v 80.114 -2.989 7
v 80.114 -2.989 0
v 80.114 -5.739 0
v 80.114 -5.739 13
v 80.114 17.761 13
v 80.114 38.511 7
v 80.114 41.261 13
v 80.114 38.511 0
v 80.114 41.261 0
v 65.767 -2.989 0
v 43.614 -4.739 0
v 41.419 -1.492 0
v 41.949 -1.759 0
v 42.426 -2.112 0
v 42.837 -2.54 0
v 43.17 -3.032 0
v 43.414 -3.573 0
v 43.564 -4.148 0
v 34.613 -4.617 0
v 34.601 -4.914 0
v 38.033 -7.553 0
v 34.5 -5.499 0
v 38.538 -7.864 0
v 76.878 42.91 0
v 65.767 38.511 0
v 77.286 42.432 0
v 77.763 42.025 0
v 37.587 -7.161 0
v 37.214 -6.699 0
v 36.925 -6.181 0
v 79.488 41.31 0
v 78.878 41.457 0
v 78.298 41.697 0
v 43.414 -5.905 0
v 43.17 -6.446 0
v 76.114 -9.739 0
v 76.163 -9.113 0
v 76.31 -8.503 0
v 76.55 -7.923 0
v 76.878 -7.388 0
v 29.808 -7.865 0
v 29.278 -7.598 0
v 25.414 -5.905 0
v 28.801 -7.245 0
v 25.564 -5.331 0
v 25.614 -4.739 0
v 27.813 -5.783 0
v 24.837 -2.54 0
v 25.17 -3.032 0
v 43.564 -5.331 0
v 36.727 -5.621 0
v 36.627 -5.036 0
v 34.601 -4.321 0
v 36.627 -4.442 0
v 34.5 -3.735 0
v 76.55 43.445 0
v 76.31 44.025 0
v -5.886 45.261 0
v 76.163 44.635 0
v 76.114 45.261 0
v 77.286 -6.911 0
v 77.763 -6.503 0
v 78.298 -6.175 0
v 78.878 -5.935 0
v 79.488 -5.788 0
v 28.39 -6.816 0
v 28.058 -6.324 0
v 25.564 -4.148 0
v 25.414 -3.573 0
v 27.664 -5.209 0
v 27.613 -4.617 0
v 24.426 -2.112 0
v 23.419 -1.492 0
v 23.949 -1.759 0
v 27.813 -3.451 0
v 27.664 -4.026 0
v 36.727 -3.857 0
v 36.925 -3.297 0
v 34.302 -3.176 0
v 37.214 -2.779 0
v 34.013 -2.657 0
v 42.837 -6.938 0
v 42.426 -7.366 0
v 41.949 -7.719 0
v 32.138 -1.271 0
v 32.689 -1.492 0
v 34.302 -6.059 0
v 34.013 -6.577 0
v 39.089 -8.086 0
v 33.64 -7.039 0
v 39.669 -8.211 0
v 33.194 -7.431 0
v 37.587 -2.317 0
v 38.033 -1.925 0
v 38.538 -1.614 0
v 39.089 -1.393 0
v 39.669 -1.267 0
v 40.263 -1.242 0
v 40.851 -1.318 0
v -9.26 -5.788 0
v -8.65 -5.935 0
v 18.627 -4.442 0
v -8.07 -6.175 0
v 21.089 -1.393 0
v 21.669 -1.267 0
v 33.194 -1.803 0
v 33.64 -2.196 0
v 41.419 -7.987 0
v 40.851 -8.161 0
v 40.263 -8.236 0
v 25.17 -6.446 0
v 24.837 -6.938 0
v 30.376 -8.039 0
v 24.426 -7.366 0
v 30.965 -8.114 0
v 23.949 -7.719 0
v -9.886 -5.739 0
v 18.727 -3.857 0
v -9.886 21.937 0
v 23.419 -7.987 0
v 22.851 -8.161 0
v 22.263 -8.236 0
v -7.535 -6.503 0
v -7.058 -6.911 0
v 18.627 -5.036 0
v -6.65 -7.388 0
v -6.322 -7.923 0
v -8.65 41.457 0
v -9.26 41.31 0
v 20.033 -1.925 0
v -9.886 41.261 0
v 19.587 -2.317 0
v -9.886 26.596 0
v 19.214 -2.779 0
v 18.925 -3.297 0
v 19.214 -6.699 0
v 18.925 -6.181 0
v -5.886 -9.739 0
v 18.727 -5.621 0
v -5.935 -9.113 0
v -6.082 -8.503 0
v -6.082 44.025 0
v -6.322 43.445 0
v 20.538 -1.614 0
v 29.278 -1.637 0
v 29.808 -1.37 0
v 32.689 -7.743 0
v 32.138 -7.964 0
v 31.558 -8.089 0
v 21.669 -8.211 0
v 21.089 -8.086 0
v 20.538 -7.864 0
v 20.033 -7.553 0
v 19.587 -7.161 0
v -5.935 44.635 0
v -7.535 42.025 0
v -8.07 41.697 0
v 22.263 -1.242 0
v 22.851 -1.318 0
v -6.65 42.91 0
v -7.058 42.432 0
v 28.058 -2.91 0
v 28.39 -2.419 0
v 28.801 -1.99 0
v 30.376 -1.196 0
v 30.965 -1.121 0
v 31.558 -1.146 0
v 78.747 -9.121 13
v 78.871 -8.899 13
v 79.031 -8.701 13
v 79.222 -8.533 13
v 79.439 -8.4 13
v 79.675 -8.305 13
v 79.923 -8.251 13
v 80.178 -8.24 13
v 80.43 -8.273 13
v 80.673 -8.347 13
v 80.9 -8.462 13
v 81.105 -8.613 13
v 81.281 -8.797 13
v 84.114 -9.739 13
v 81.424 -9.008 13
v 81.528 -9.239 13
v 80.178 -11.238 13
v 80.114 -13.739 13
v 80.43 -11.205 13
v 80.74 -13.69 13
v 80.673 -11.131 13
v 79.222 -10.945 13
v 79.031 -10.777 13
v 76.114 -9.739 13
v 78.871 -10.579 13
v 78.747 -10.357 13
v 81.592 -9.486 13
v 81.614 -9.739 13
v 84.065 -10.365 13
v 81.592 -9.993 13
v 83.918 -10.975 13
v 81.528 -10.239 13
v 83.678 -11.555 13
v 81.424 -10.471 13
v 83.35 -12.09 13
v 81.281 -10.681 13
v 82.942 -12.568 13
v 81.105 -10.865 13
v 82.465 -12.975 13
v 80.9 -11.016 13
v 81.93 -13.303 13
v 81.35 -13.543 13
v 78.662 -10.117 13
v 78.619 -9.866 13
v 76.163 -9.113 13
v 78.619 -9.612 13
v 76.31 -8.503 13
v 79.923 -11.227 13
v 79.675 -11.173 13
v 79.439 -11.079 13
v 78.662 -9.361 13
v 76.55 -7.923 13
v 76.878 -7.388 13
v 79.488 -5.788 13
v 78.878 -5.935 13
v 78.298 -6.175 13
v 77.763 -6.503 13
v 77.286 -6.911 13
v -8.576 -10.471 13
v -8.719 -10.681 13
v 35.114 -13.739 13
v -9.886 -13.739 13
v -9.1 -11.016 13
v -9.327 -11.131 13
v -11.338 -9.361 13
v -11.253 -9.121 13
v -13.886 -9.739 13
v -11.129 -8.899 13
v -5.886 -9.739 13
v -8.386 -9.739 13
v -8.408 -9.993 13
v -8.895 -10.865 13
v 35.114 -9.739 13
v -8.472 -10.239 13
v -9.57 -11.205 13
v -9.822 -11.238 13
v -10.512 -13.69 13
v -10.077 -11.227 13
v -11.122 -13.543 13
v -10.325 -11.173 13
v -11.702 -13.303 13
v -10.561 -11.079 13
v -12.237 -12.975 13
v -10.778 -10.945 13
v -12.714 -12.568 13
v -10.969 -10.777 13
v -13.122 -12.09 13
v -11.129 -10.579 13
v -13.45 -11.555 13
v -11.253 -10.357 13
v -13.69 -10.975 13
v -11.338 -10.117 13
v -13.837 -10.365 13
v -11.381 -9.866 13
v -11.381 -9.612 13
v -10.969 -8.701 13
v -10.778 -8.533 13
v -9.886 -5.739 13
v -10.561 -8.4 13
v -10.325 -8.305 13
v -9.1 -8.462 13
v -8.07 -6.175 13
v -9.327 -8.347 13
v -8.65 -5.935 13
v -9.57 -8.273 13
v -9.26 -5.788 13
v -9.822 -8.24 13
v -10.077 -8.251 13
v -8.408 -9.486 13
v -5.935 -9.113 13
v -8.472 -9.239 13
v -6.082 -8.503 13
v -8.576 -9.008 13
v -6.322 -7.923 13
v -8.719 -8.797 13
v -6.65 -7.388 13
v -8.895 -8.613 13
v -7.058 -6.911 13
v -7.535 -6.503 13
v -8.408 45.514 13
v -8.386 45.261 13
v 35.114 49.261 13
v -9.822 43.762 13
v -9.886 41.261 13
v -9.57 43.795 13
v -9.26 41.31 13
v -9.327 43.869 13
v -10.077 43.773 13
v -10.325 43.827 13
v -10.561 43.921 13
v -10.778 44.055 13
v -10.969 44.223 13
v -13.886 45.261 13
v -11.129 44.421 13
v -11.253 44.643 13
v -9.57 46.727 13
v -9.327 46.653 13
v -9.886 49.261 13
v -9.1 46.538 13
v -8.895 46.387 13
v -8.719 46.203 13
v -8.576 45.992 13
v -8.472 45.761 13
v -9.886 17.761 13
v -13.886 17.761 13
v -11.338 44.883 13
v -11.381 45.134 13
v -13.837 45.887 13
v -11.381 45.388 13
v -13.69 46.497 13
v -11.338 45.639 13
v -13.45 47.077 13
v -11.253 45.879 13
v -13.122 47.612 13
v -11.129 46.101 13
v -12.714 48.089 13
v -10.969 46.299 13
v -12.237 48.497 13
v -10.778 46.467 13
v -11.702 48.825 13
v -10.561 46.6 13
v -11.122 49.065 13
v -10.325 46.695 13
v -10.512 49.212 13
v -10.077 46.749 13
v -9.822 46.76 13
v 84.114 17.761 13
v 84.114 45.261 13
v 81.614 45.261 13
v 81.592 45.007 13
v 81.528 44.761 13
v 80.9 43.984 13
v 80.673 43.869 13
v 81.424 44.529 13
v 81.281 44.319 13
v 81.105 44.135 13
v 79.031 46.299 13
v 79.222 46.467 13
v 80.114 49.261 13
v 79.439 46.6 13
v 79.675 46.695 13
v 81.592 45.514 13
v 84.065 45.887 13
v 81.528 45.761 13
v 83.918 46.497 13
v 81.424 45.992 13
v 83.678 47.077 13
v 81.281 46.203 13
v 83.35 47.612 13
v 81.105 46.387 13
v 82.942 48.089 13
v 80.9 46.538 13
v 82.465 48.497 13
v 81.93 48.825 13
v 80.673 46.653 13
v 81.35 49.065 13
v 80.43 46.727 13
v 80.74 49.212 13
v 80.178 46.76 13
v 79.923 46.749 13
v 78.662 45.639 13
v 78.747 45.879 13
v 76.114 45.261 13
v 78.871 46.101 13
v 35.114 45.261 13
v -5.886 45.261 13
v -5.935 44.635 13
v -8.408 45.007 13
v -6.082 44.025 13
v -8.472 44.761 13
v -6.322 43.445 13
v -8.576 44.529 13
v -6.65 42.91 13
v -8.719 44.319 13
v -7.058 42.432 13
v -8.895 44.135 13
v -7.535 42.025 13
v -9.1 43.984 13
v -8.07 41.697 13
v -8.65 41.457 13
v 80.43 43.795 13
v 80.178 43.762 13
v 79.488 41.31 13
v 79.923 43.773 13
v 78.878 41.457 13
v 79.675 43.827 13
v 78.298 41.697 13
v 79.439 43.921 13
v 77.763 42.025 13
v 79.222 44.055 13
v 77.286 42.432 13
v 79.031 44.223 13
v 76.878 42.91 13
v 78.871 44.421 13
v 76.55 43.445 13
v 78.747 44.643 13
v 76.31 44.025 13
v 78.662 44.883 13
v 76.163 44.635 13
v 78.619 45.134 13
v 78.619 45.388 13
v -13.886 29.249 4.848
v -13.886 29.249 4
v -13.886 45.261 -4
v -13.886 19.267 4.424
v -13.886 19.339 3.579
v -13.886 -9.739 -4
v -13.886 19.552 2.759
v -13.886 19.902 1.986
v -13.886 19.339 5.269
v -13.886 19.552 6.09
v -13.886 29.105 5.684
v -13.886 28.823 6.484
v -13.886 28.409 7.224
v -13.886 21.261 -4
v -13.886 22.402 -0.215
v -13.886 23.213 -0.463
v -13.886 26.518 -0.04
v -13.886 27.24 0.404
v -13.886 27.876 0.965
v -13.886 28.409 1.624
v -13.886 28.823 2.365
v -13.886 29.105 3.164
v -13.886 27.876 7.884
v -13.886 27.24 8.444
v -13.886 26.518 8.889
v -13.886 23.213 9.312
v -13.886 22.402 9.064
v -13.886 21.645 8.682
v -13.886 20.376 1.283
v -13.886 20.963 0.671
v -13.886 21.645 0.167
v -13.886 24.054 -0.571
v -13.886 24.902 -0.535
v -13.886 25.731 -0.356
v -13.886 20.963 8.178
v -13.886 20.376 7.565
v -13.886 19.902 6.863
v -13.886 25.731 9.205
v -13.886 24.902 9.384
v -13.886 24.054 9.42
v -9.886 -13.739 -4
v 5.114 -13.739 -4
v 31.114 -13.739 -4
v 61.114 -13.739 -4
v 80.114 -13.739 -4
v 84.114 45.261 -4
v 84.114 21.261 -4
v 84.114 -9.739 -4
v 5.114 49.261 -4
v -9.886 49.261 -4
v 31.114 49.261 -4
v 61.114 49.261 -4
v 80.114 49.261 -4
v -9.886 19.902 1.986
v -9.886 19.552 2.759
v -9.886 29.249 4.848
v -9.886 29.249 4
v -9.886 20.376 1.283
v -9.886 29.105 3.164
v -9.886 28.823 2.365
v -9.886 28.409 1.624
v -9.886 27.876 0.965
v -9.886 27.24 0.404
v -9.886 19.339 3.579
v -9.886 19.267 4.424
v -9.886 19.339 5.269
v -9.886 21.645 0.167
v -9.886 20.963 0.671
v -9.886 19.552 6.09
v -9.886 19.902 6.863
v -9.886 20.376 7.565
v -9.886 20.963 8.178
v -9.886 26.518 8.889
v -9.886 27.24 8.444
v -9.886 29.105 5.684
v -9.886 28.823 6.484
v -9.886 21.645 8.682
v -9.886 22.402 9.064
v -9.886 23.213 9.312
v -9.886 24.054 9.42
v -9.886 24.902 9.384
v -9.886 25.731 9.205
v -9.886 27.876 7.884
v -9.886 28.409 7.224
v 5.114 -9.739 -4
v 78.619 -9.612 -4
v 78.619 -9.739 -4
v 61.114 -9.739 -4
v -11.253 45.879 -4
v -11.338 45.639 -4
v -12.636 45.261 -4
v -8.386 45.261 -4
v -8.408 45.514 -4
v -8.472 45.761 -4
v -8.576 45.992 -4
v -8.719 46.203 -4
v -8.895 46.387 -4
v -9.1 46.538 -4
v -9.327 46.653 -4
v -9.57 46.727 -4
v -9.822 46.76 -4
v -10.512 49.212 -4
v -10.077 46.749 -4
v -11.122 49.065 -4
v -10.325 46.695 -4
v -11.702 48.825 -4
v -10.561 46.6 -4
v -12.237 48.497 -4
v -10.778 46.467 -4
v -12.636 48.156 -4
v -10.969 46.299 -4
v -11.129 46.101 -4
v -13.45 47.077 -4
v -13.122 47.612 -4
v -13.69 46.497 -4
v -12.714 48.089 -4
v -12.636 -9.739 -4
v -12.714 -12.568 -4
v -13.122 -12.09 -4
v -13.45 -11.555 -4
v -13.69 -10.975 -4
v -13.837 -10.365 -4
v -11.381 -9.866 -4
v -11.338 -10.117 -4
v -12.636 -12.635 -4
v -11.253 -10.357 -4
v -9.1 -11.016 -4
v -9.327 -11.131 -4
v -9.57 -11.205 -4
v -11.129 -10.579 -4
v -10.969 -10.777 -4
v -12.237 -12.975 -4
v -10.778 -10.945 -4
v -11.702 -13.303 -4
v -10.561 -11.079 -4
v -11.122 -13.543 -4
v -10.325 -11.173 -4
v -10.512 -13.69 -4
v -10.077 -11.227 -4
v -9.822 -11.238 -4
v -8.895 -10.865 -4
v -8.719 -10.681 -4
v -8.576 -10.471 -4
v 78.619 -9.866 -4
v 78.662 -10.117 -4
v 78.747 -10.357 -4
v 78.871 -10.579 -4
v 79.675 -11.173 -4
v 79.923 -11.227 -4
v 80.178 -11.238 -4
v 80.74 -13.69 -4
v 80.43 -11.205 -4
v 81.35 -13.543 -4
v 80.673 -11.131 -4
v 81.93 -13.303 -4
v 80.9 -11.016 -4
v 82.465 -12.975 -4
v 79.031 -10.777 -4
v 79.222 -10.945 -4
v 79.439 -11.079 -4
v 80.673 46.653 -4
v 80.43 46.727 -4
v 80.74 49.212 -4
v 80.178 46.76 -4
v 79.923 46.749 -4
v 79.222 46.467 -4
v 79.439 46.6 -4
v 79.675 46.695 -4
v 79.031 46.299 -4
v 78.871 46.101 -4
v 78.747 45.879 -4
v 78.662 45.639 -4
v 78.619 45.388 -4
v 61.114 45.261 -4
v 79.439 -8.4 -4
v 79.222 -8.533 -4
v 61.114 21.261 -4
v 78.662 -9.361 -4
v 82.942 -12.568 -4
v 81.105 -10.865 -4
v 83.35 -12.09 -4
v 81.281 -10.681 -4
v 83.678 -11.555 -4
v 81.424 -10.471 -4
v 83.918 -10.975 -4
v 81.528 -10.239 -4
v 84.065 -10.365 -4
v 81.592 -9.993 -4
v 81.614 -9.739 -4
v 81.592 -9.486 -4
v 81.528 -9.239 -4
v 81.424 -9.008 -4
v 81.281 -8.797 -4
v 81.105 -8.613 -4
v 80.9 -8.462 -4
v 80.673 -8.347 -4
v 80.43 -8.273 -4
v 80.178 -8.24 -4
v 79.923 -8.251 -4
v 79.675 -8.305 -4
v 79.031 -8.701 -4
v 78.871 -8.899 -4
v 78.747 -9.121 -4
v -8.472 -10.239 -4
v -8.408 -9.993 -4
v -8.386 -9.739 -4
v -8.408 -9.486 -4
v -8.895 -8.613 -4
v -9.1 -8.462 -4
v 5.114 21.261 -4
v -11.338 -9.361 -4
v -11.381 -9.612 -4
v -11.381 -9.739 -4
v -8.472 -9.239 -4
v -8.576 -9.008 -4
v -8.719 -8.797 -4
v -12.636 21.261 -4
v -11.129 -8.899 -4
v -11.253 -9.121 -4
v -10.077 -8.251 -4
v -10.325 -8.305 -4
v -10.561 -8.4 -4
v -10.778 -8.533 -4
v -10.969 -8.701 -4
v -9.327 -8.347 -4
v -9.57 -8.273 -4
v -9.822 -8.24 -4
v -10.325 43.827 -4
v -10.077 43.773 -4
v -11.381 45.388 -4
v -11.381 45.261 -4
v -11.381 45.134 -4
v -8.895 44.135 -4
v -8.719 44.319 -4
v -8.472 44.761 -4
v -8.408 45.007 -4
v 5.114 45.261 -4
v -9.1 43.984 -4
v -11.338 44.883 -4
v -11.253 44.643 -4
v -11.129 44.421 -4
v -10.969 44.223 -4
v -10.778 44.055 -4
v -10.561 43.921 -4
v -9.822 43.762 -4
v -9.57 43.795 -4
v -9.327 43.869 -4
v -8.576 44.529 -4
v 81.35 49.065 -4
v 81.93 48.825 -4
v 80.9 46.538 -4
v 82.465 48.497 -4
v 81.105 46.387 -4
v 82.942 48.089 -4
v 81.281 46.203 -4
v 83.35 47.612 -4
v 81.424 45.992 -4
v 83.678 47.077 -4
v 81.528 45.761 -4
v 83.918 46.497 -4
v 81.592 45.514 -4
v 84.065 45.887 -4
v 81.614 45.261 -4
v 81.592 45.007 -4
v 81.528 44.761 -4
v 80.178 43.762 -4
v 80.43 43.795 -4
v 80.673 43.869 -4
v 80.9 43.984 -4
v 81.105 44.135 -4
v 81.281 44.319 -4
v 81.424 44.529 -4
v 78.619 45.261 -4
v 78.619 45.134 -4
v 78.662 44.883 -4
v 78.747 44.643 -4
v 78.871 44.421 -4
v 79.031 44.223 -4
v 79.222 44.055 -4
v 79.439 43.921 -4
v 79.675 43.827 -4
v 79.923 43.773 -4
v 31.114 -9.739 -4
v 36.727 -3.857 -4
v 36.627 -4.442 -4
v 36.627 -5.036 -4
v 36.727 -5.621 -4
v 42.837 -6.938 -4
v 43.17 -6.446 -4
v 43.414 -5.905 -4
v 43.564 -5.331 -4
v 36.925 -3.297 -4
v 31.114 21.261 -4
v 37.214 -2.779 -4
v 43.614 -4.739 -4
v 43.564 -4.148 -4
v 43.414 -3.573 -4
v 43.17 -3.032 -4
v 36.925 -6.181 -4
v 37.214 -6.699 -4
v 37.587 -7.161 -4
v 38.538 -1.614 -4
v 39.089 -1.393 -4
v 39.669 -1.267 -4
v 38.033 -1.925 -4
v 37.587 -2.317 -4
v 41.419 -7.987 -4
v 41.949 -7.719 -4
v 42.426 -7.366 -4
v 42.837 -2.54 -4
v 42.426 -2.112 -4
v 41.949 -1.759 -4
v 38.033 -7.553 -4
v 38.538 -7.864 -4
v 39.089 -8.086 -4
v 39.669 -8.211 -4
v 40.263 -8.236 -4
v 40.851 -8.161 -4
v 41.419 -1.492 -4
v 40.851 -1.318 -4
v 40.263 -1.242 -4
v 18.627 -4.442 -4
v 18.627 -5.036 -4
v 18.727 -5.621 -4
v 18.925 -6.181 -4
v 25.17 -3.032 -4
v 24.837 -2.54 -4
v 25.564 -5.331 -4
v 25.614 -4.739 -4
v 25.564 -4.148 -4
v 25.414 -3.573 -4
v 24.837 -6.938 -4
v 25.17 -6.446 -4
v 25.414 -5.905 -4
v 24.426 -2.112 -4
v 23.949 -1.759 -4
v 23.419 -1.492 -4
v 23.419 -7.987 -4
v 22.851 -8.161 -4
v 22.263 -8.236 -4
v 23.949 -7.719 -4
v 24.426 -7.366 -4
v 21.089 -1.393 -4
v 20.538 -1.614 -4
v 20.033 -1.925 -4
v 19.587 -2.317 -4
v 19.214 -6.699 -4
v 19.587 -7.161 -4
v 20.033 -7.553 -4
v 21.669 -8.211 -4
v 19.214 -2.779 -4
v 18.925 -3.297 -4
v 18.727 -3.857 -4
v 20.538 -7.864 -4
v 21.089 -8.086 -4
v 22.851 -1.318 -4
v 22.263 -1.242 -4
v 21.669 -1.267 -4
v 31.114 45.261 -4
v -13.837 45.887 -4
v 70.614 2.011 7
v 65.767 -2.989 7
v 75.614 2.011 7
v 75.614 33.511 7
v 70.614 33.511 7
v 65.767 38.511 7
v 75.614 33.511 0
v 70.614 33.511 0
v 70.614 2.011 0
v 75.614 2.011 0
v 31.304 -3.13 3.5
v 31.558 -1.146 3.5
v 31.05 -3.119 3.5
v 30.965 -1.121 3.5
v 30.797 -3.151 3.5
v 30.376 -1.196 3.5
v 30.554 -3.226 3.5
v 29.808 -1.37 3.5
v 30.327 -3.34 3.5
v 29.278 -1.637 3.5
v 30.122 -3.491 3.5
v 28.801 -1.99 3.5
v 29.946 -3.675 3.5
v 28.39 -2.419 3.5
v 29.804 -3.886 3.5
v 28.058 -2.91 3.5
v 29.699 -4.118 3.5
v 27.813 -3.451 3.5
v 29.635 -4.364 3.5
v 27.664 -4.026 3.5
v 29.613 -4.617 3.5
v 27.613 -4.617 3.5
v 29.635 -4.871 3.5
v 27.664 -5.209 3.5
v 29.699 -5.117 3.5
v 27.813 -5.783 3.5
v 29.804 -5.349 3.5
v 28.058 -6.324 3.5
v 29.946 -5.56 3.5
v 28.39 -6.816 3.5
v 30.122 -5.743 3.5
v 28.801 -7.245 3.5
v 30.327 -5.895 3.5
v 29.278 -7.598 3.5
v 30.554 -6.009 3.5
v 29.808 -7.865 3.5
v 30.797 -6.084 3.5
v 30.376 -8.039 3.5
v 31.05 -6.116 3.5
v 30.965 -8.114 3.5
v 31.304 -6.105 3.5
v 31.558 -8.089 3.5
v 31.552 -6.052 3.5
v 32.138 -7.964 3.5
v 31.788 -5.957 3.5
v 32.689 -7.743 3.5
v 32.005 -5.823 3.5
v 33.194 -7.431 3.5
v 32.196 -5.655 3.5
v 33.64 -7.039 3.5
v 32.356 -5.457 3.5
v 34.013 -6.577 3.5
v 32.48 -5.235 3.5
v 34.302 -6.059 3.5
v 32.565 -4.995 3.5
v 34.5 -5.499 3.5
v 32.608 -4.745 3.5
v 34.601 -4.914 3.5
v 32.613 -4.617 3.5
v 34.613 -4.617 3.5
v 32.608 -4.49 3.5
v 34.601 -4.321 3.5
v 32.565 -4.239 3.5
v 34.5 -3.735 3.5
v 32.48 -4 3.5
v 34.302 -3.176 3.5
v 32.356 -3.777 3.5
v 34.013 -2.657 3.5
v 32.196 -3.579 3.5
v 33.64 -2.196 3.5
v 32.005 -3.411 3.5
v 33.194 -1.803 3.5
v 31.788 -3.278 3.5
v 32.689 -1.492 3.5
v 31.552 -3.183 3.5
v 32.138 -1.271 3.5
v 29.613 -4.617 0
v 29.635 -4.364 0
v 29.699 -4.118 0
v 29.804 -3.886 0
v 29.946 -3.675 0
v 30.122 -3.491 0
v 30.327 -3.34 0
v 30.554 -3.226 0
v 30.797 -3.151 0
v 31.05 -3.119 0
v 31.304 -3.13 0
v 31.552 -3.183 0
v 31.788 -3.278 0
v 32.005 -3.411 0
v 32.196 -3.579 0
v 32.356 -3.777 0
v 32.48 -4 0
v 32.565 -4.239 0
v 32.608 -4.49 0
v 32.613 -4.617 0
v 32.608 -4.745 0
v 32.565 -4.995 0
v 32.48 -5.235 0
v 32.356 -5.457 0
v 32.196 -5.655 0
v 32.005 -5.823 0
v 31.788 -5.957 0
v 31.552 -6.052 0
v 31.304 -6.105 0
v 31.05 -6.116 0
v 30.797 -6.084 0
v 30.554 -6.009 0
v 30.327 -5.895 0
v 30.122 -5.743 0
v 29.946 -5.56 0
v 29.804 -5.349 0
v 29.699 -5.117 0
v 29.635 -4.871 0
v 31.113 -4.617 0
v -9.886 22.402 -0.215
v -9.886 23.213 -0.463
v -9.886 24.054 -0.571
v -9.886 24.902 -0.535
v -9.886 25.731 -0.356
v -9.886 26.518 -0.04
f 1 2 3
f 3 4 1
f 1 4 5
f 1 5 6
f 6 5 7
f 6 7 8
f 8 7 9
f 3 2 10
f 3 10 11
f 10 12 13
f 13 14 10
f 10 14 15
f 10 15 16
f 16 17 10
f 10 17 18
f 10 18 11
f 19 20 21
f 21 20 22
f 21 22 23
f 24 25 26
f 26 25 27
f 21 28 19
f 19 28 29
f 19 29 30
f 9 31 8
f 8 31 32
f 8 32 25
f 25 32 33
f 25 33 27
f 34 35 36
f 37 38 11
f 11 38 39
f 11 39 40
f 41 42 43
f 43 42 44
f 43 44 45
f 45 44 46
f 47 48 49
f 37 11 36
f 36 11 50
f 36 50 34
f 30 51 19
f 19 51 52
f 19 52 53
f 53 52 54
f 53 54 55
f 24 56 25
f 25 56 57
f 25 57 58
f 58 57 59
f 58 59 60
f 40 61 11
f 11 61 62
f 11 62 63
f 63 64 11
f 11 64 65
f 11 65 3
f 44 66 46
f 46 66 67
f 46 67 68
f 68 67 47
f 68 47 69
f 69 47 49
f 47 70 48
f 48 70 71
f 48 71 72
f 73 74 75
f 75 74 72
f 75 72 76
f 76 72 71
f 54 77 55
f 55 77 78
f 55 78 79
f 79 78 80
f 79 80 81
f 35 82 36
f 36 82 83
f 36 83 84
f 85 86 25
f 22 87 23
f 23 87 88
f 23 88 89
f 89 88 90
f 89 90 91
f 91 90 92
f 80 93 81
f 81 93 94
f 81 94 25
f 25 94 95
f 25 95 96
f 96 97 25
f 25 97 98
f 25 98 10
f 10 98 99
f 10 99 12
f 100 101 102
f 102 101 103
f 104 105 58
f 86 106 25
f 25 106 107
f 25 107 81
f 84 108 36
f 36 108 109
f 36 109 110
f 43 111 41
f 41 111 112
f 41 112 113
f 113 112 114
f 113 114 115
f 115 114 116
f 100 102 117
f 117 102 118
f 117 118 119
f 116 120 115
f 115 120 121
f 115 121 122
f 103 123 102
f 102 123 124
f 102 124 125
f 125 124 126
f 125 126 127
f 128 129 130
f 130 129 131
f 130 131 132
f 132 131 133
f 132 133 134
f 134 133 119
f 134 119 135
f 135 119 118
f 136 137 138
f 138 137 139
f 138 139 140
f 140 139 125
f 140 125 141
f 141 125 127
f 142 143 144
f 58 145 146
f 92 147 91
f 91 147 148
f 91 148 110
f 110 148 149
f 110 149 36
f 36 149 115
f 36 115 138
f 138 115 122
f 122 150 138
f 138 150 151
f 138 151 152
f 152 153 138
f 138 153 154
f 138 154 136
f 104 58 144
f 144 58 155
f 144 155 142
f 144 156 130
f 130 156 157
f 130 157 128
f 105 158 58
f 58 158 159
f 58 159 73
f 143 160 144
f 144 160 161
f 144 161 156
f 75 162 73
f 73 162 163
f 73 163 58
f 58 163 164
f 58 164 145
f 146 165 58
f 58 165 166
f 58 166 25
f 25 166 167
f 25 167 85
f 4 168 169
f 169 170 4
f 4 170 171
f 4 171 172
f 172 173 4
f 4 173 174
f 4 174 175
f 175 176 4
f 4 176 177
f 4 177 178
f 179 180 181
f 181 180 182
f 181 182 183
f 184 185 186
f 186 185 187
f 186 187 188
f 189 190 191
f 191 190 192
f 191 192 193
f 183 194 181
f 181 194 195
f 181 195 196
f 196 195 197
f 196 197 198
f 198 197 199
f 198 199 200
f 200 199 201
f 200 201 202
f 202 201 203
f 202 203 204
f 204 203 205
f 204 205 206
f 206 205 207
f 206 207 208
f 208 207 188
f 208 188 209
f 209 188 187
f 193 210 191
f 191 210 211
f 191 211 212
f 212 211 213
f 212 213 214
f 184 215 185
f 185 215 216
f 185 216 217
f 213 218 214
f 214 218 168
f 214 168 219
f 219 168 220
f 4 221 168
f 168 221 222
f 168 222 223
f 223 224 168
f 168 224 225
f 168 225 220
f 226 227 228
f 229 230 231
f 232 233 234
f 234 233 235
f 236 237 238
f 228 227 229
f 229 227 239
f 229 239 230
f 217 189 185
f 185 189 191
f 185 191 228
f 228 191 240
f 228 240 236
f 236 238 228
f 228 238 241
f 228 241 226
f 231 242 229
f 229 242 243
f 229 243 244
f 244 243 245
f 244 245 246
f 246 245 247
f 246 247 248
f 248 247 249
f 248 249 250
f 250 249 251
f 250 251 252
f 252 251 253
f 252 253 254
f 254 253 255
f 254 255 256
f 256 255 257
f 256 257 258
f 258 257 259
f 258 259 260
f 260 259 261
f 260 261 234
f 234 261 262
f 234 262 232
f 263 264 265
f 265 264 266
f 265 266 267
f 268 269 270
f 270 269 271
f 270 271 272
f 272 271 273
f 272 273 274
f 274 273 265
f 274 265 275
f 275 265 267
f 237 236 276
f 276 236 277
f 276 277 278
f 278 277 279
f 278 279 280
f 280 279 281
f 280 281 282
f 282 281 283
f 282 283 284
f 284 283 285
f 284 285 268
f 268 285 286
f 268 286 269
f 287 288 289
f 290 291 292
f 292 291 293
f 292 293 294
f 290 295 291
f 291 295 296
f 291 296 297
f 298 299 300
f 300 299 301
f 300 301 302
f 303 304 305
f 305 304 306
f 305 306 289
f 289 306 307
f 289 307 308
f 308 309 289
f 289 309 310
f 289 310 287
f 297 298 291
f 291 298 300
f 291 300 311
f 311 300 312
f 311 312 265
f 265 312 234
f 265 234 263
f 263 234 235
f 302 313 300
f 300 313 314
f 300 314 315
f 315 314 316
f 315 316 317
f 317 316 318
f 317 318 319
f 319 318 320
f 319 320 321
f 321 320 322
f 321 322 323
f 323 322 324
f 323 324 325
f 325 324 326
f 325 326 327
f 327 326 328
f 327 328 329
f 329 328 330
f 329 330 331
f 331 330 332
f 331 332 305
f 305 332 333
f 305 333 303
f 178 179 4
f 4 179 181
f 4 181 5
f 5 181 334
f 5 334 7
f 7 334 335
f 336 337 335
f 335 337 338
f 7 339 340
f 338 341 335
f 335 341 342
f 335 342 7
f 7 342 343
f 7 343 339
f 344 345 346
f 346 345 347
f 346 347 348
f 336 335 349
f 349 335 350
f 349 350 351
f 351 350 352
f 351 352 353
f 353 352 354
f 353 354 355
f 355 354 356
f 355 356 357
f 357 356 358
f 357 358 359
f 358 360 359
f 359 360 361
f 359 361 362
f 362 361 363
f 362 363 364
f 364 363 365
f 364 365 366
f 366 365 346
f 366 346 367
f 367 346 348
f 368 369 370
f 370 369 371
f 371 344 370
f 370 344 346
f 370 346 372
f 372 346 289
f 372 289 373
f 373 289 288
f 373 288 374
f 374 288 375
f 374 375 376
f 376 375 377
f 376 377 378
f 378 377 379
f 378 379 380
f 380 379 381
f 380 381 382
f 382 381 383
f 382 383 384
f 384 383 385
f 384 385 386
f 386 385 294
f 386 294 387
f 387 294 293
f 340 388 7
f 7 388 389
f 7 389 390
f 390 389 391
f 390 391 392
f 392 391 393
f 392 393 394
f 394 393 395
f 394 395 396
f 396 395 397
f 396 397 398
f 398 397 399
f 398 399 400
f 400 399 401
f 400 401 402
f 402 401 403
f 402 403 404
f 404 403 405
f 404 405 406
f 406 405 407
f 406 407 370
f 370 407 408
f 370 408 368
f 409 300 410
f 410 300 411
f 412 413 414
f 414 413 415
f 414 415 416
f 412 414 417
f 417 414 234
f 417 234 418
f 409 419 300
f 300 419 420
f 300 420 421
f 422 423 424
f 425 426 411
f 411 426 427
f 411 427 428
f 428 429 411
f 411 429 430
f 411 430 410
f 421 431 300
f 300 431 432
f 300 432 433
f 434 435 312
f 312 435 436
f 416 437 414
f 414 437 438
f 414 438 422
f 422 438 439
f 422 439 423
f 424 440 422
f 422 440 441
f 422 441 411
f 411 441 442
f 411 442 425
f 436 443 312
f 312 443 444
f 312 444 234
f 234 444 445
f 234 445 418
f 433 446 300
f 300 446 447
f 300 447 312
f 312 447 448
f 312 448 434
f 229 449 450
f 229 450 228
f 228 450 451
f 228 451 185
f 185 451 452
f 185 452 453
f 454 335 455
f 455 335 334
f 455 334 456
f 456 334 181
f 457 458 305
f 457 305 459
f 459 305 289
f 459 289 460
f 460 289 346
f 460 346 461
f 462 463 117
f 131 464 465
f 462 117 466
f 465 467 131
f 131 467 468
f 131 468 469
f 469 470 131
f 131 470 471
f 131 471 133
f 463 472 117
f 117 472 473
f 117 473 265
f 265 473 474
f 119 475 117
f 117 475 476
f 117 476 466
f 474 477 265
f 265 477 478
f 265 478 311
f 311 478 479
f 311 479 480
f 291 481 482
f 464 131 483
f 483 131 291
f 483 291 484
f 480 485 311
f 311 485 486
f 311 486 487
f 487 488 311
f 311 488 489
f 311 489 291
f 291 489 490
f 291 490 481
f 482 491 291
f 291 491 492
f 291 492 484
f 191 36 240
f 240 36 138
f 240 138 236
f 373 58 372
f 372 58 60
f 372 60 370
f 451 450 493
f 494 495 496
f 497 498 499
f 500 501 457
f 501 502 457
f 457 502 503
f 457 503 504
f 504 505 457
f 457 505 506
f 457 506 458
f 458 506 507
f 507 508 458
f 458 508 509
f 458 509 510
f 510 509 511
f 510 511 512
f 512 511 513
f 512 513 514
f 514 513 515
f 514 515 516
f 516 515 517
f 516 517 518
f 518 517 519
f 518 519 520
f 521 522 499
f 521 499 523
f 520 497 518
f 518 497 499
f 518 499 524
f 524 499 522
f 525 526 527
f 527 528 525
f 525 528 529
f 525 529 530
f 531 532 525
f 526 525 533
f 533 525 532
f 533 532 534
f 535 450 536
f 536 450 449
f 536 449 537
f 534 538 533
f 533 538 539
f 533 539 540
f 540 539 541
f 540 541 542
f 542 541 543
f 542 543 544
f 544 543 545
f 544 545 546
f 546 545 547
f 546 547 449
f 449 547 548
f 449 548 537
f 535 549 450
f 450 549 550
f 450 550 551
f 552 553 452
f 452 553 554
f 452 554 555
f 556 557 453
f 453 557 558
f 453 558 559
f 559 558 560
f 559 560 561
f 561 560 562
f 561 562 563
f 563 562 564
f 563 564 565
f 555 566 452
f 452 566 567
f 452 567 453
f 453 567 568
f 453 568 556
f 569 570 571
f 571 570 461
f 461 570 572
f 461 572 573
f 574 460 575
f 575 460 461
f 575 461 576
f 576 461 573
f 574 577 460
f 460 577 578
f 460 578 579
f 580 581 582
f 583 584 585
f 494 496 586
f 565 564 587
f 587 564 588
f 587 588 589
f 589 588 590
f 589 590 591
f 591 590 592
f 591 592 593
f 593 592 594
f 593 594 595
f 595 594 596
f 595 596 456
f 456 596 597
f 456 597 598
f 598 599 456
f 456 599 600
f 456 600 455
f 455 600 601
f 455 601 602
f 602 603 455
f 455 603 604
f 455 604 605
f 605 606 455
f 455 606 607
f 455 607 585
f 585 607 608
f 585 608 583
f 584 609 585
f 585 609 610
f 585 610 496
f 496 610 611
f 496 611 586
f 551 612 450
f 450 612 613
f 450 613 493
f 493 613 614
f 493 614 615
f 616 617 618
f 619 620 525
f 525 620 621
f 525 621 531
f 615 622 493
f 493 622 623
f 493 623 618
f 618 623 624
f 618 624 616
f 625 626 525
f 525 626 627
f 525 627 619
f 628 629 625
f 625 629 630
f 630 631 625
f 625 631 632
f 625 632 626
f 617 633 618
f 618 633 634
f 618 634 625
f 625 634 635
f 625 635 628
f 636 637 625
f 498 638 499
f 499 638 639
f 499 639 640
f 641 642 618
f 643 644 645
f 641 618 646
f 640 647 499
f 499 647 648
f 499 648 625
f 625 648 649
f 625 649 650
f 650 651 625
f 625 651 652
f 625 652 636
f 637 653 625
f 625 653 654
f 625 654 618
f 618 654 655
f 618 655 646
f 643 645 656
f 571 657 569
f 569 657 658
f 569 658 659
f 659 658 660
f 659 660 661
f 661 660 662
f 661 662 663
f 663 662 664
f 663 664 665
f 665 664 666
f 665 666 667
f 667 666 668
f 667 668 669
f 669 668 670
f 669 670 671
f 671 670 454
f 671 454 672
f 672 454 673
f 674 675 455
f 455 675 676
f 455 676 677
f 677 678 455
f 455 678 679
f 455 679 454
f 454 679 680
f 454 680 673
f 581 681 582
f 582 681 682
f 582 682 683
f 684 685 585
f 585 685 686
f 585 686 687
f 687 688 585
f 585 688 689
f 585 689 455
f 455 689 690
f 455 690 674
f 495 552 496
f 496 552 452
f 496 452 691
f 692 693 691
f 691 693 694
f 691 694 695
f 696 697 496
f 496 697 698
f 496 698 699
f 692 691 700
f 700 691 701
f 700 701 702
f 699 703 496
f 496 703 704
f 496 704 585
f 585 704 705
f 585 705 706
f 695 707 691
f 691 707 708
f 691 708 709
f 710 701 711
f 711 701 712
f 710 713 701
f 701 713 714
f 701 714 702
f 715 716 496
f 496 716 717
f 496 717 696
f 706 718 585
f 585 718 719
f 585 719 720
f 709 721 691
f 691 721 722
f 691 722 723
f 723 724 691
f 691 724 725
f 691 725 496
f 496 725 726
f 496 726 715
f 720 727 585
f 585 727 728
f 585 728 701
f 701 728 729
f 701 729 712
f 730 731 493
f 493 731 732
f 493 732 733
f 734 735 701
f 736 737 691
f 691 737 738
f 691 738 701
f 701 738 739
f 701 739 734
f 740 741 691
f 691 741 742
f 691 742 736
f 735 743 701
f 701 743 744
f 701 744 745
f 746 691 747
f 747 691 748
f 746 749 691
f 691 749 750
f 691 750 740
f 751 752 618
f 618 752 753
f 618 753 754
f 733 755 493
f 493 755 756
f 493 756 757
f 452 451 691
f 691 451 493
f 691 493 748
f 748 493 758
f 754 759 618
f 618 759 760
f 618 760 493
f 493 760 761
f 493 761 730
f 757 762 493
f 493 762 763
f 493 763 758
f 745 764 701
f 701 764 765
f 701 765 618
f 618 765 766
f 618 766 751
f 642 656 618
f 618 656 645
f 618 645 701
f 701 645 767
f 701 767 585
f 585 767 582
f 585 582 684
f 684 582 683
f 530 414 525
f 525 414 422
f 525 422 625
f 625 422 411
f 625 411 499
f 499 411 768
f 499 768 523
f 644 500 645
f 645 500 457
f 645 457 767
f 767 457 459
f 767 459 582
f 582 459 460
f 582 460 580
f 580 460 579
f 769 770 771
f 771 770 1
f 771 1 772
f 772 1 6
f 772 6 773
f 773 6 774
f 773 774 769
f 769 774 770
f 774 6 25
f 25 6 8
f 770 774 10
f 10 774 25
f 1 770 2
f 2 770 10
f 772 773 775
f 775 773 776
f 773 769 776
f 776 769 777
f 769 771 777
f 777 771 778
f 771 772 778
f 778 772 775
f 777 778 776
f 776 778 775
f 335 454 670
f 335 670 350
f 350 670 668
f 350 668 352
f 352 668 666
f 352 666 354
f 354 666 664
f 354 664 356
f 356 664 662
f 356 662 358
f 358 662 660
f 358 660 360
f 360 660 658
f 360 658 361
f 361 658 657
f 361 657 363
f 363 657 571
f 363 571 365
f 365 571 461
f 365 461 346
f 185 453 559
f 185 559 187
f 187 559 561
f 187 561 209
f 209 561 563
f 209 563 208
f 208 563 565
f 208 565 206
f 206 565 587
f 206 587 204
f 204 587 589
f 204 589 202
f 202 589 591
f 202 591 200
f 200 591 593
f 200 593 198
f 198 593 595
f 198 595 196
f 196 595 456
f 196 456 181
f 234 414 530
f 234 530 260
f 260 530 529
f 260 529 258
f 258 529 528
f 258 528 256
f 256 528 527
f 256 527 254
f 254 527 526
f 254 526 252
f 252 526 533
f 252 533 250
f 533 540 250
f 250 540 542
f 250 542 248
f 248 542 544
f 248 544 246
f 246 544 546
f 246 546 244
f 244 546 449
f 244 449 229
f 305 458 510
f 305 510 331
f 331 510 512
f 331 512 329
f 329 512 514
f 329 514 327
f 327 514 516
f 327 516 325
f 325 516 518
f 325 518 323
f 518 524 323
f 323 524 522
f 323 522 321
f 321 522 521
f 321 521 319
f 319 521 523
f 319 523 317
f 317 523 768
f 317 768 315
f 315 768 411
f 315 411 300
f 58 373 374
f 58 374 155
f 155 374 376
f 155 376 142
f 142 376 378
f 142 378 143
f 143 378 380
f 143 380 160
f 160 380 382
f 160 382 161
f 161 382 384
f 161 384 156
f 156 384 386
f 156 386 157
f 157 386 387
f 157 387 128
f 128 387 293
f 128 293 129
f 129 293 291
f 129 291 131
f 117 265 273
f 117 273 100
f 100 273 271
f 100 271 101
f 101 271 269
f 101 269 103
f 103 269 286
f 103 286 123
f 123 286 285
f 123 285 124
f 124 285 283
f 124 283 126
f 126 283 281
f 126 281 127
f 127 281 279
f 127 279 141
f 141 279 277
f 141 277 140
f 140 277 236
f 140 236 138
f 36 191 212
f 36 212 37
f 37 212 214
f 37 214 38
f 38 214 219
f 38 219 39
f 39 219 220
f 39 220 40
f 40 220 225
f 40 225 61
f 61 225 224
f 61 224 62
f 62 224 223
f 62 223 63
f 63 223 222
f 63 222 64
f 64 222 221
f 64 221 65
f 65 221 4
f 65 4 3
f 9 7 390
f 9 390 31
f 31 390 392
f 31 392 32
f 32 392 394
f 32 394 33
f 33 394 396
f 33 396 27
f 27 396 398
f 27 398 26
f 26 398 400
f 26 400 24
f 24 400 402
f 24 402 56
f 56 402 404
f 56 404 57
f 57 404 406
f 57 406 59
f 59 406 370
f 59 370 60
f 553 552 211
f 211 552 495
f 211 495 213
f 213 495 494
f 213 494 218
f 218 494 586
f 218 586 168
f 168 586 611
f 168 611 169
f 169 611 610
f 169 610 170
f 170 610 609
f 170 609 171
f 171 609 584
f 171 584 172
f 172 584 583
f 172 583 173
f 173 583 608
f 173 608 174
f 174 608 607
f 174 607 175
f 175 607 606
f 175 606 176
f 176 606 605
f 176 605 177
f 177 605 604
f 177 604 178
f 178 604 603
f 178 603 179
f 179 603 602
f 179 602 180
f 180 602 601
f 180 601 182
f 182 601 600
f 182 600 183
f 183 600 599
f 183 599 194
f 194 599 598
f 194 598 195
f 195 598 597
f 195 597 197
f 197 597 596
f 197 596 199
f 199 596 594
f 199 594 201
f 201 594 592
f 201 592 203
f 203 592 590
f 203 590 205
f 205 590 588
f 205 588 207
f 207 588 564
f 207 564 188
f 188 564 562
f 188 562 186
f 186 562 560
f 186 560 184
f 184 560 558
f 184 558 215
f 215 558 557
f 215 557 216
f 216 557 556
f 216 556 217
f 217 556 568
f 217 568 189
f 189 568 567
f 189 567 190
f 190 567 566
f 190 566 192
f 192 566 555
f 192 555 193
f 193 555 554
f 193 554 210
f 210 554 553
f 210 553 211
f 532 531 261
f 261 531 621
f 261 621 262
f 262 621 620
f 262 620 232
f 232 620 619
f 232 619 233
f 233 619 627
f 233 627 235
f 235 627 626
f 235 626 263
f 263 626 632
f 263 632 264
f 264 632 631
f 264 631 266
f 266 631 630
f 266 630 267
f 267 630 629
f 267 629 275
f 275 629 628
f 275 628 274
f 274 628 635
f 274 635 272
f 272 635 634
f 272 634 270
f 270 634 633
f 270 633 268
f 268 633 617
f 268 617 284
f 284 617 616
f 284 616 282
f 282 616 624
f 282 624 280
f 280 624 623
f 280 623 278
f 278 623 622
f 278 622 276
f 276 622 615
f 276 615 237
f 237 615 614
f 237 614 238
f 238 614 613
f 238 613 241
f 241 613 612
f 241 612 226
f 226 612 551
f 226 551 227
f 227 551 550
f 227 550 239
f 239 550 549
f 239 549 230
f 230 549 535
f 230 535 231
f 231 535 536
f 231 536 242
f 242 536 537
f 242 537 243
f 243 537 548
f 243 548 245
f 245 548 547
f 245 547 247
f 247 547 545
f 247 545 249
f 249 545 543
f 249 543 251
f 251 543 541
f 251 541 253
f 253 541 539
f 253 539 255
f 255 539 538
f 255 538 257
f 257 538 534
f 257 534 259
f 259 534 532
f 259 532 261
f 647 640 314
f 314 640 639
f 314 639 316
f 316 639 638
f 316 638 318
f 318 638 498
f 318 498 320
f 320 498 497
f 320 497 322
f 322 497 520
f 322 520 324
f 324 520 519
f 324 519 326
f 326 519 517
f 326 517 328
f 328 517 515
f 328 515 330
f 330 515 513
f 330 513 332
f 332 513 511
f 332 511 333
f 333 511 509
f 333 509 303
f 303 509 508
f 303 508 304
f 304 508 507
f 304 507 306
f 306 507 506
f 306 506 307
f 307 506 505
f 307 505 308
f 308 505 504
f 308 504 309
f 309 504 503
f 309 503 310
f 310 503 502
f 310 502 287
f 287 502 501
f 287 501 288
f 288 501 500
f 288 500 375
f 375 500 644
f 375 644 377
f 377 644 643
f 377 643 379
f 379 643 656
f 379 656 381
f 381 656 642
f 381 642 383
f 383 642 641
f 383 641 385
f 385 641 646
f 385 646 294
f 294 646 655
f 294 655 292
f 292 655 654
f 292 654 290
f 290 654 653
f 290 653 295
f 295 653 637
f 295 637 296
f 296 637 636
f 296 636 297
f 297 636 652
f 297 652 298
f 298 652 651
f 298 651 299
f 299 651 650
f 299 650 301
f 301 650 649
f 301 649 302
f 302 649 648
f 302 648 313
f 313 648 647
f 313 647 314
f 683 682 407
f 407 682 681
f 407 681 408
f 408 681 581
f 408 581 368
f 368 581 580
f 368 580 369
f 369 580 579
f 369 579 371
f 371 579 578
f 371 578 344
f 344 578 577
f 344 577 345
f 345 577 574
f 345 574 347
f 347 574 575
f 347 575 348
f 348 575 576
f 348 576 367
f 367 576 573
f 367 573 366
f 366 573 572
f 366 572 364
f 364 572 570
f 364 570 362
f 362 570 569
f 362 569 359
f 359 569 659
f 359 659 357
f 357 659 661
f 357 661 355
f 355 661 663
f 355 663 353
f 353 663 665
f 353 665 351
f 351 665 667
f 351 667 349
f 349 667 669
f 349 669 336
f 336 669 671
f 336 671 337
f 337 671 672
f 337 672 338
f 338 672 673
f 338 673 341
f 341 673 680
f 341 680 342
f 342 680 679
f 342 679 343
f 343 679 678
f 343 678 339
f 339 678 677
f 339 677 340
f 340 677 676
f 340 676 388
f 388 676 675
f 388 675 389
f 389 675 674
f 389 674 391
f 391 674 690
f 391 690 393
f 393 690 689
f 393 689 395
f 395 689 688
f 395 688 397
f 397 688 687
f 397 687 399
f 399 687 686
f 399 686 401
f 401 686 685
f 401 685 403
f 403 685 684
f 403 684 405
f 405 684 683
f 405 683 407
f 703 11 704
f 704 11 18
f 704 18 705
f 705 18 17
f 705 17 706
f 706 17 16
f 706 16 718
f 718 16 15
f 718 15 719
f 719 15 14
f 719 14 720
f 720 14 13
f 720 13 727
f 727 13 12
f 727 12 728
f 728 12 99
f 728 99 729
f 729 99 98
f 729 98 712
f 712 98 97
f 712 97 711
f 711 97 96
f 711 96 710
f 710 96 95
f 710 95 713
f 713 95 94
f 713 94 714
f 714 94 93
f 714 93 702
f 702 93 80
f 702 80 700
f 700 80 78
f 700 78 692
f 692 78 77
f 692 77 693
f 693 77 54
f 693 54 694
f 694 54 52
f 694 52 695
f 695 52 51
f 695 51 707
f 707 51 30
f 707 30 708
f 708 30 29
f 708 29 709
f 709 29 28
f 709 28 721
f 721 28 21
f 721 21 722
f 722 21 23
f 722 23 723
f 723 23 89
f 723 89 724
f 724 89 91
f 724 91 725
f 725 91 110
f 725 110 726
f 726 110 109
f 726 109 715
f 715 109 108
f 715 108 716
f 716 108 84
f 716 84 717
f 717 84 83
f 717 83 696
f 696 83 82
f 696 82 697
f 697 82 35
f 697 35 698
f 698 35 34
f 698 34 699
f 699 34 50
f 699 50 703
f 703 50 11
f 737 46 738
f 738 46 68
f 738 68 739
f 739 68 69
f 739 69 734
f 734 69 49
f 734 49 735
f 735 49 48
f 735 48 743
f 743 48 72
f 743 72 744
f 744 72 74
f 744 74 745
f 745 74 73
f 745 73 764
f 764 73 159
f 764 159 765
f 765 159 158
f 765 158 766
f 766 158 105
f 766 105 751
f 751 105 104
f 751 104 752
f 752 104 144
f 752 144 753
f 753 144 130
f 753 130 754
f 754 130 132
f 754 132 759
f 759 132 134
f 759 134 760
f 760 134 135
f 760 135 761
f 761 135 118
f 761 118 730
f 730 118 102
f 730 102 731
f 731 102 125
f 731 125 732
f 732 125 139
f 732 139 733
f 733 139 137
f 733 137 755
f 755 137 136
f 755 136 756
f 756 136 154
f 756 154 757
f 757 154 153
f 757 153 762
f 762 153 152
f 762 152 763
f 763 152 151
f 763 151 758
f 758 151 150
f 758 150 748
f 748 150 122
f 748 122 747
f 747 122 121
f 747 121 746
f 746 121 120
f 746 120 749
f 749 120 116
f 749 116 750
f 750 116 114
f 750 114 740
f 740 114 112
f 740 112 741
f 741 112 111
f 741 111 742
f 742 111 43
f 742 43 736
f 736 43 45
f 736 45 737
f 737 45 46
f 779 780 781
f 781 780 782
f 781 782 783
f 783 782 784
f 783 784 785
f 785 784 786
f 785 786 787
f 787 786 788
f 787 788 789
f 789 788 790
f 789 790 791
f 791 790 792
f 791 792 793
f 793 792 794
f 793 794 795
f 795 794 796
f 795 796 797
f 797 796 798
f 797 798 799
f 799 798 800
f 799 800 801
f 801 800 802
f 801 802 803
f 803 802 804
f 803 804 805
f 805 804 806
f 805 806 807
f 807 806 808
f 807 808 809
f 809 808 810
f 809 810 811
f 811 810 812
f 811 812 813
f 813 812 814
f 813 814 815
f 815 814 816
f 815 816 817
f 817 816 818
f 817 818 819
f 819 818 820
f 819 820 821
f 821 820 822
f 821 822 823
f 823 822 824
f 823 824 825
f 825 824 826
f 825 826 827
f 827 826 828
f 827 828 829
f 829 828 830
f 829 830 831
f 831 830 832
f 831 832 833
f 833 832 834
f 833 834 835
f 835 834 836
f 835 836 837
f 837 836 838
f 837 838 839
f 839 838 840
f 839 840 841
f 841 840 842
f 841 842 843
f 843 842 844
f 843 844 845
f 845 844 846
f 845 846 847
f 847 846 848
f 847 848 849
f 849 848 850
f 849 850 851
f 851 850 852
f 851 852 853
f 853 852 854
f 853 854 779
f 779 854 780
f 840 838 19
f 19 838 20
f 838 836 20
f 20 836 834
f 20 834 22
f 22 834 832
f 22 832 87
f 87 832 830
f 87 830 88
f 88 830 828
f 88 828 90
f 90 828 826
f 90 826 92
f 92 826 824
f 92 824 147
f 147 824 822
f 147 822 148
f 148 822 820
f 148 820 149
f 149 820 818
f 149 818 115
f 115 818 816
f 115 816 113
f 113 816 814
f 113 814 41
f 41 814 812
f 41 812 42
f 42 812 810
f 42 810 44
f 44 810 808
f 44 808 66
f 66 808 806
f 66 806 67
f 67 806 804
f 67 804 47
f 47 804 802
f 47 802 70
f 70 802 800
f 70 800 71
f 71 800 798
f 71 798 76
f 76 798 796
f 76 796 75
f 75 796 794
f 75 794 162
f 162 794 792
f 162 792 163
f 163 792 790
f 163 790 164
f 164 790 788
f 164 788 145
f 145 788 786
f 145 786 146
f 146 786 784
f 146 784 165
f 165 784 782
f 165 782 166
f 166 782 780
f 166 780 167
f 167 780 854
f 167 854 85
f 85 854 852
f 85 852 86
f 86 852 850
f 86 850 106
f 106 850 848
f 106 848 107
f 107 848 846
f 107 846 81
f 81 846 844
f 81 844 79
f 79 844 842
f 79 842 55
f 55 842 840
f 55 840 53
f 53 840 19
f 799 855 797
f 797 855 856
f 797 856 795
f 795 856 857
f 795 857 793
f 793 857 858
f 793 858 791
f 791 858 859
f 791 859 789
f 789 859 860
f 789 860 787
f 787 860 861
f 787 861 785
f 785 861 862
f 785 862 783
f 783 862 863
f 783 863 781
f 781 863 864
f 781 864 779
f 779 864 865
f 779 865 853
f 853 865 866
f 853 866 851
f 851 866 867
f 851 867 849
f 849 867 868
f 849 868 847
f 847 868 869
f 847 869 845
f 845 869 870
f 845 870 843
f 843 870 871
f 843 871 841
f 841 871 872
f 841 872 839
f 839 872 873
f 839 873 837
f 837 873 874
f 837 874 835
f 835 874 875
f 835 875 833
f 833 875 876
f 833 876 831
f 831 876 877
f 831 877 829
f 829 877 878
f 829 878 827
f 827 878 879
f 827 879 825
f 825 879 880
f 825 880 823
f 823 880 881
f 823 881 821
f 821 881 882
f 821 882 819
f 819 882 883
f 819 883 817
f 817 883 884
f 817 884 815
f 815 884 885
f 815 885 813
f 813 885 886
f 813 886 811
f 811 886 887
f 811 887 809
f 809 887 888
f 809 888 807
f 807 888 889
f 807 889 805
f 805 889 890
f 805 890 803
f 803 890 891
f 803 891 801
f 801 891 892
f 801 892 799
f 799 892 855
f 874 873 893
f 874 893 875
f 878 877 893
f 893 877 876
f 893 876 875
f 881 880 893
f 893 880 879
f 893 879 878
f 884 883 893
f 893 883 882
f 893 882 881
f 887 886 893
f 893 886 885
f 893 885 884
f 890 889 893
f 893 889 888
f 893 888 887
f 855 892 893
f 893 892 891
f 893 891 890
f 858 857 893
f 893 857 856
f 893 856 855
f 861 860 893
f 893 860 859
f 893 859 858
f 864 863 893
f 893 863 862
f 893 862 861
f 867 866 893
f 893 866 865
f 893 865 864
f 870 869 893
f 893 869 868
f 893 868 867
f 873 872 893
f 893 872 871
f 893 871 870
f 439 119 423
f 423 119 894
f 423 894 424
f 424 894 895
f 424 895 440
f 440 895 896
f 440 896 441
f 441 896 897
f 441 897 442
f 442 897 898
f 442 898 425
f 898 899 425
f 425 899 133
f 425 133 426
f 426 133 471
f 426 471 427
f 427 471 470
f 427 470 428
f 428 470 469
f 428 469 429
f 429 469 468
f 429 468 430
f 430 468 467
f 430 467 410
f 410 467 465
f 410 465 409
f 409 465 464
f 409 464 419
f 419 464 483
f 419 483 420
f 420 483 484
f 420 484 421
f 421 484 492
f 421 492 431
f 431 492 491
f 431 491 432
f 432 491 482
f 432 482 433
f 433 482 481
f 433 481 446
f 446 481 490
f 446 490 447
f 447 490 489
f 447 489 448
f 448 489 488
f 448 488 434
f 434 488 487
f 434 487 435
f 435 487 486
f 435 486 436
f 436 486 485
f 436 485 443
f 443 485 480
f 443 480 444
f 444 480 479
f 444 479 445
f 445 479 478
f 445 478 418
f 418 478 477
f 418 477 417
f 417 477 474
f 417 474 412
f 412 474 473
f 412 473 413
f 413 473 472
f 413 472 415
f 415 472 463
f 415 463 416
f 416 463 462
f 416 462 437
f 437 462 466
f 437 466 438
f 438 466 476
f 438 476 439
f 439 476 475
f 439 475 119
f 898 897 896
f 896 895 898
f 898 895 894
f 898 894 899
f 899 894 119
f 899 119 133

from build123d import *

# Parameters (mm, degrees)
ESQUISSE1_W             = 98
ESQUISSE1_H             = 63
ESQUISSE1_W_2           = 90
ESQUISSE1_H_2           = 55
BOSS_EXTRU_1_DEPTH      = 13
ESQUISSE2_W             = 98
ESQUISSE2_H             = 63
BOSS_EXTRU_2_DEPTH      = 4
ESQUISSE3_W             = 5
ESQUISSE3_H             = 31.5
BOSS_EXTRU_3_DEPTH      = 7
CONG_2_R                = 4
ESQUISSE6_R             = 4
BOSS_EXTRU_5_DEPTH      = 17
ESQUISSE7_R             = 1.5
ENL_V_MAT_EXTRU_2_DEPTH = 83.442016046
ESQUISSE8_R             = 3.5
ENL_V_MAT_EXTRU_3_DEPTH = 10
ESQUISSE9_R             = 3.5
ESQUISSE9_R_2           = 1.5
BOSS_EXTRU_6_DEPTH      = 3.5
ESQUISSE10_R            = 5
ENL_V_MAT_EXTRU_4_DEPTH = 4


with BuildPart() as part:
    # Esquisse1 → Boss.-Extru.1 (new body)
    with BuildSketch(Plane.XY):
        with Locations((35.11398795, 17.760869565)):
            Rectangle(ESQUISSE1_W, ESQUISSE1_H)
        with Locations((35.11398795, 17.760869565)):
            Rectangle(ESQUISSE1_W_2, ESQUISSE1_H_2, mode=Mode.SUBTRACT)
    extrude(amount=BOSS_EXTRU_1_DEPTH)

    # Esquisse2 → Boss.-Extru.2 (add)
    with BuildSketch(Plane(origin=(0, 0, 0), x_dir=(-1, 0, 0), z_dir=(0, 0, -1))):
        with Locations((-35.11398795, 17.760869565)):
            Rectangle(ESQUISSE2_W, ESQUISSE2_H)
    extrude(amount=BOSS_EXTRU_2_DEPTH)

    # Esquisse3 → Boss.-Extru.3 (add)
    with BuildSketch(Plane.XY):
        Polygon((80.11398795, 2.010869565), (80.11398795, 33.510869565), (80.11398795, 38.510869565), (65.766919995, 38.510869565), (65.766919995, 33.510869565), (65.766919995, 2.010869565), (65.766919995, -2.989130435), (80.11398795, -2.989130435), align=None)
        with Locations((73.11398795, 17.760869565)):
            Rectangle(ESQUISSE3_W, ESQUISSE3_H, mode=Mode.SUBTRACT)
    extrude(amount=BOSS_EXTRU_3_DEPTH)

    # Congé2
    cong_2_edges = [part.edges().sort_by_distance(p)[0] for p in [
        (-13.88601205, 49.260869565, 4.5),
        (84.11398795, 49.260869565, 4.5),
        (84.11398795, -13.739130435, 4.5),
        (-13.88601205, -13.739130435, 4.5),
    ]]
    fillet(cong_2_edges, radius=CONG_2_R)

    # Esquisse6 → Boss.-Extru.5 (add)
    with BuildSketch(Plane.XY.offset(13)):
        with Locations((-9.88601205, 45.260869565)):
            Circle(ESQUISSE6_R)
        with Locations((-9.88601205, -9.739130435)):
            Circle(ESQUISSE6_R)
        with Locations((80.11398795, -9.739130435)):
            Circle(ESQUISSE6_R)
        with Locations((80.11398795, 45.260869565)):
            Circle(ESQUISSE6_R)
    extrude(amount=-BOSS_EXTRU_5_DEPTH)

    # Esquisse7 → Enlèv. mat.-Extru.2 (cut)
    with BuildSketch(Plane.XY.offset(13)):
        with Locations((80.11398795, -9.739130435)):
            Circle(ESQUISSE7_R)
        with Locations((-9.88601205, -9.739130435)):
            Circle(ESQUISSE7_R)
        with Locations((-9.88601205, 45.260869565)):
            Circle(ESQUISSE7_R)
        with Locations((80.11398795, 45.260869565)):
            Circle(ESQUISSE7_R)
    extrude(amount=-ENL_V_MAT_EXTRU_2_DEPTH, mode=Mode.SUBTRACT)

    # Esquisse8 → Enlèv. mat.-Extru.3 (cut)
    with BuildSketch(Plane.XY):
        with Locations((22.11398795, -4.739130435)):
            Circle(ESQUISSE8_R)
        with Locations((40.11398795, -4.739130435)):
            Circle(ESQUISSE8_R)
    extrude(amount=-ENL_V_MAT_EXTRU_3_DEPTH, mode=Mode.SUBTRACT)

    # Esquisse9 → Boss.-Extru.6 (add)
    with BuildSketch(Plane.XY):
        with Locations((31.113164105, -4.617357959)):
            Circle(ESQUISSE9_R)
        with Locations((31.113164105, -4.617357959)):
            Circle(ESQUISSE9_R_2, mode=Mode.SUBTRACT)
    extrude(amount=BOSS_EXTRU_6_DEPTH)

    # Esquisse10 → Enlèv. mat.-Extru.4 (cut)
    with BuildSketch(Plane.ZY.offset(13.88601205)):
        with Locations(Location((4.424351408, 24.266648435, 0), (0, 0, 270))):
            Circle(ESQUISSE10_R)
    extrude(amount=-ENL_V_MAT_EXTRU_4_DEPTH, mode=Mode.SUBTRACT)


solid = part.part
